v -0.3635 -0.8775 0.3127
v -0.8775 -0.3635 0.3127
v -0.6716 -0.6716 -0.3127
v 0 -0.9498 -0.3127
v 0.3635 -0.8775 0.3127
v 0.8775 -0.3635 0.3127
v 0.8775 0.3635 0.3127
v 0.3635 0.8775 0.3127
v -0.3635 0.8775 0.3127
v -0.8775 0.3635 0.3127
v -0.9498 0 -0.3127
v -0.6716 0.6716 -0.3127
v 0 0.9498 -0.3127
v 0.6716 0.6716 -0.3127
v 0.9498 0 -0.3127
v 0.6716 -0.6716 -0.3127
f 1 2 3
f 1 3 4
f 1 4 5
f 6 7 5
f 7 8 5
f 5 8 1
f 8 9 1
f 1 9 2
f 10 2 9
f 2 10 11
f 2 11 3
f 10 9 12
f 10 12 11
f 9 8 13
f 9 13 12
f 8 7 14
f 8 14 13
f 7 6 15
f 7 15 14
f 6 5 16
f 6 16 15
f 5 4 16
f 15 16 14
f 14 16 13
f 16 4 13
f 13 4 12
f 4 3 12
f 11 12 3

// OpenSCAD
polyhedron( points = [[-0.363491342243674, -0.877545728212185, 0.312709991378293], [-0.877545728277338, -0.363491342109282, 0.312709991378293], [-0.877545728179421, 0.363491342308261, 0.312709991378293], [-0.363491342164876, 0.877545728207416, 0.312709991378293], [0.36349134225267, 0.877545728142133, 0.312709991378293], [0.8775457281749, 0.363491342150666, 0.312709991378293], [0.877545728142258, -0.363491342266878, 0.312709991378293], [0.363491342173872, -0.877545728212185, 0.312709991378293], [-1.60567043259204e-11, -0.949848651560057, -0.312709991391998], [-0.671644422642917, -0.67164442255394, -0.312709991391998], [-0.949848651396985, 1.28072838734187e-10, -0.312709991442182], [-0.671644422716019, 0.671644422839836, -0.312709991369975], [6.92335808477141e-11, 0.94984865134241, -0.312709991399055], [0.671644422792968, 0.671644422692055, -0.312709991337491], [0.949848651325669, -8.01931249831506e-11, -0.312709991374587], [0.671644422705716, -0.671644422816129, -0.312709991319062]], faces = [[0, 1, 9], [0, 9, 8], [0, 8, 7], [0, 7, 6, 5, 4, 3, 2, 1], [1, 2, 10], [1, 10, 9], [2, 3, 11], [2, 11, 10], [3, 4, 12], [3, 12, 11], [4, 5, 13], [4, 13, 12], [5, 6, 14], [5, 14, 13], [6, 7, 15], [6, 15, 14], [7, 8, 15], [8, 9, 10, 11, 12, 13, 14, 15]]);
